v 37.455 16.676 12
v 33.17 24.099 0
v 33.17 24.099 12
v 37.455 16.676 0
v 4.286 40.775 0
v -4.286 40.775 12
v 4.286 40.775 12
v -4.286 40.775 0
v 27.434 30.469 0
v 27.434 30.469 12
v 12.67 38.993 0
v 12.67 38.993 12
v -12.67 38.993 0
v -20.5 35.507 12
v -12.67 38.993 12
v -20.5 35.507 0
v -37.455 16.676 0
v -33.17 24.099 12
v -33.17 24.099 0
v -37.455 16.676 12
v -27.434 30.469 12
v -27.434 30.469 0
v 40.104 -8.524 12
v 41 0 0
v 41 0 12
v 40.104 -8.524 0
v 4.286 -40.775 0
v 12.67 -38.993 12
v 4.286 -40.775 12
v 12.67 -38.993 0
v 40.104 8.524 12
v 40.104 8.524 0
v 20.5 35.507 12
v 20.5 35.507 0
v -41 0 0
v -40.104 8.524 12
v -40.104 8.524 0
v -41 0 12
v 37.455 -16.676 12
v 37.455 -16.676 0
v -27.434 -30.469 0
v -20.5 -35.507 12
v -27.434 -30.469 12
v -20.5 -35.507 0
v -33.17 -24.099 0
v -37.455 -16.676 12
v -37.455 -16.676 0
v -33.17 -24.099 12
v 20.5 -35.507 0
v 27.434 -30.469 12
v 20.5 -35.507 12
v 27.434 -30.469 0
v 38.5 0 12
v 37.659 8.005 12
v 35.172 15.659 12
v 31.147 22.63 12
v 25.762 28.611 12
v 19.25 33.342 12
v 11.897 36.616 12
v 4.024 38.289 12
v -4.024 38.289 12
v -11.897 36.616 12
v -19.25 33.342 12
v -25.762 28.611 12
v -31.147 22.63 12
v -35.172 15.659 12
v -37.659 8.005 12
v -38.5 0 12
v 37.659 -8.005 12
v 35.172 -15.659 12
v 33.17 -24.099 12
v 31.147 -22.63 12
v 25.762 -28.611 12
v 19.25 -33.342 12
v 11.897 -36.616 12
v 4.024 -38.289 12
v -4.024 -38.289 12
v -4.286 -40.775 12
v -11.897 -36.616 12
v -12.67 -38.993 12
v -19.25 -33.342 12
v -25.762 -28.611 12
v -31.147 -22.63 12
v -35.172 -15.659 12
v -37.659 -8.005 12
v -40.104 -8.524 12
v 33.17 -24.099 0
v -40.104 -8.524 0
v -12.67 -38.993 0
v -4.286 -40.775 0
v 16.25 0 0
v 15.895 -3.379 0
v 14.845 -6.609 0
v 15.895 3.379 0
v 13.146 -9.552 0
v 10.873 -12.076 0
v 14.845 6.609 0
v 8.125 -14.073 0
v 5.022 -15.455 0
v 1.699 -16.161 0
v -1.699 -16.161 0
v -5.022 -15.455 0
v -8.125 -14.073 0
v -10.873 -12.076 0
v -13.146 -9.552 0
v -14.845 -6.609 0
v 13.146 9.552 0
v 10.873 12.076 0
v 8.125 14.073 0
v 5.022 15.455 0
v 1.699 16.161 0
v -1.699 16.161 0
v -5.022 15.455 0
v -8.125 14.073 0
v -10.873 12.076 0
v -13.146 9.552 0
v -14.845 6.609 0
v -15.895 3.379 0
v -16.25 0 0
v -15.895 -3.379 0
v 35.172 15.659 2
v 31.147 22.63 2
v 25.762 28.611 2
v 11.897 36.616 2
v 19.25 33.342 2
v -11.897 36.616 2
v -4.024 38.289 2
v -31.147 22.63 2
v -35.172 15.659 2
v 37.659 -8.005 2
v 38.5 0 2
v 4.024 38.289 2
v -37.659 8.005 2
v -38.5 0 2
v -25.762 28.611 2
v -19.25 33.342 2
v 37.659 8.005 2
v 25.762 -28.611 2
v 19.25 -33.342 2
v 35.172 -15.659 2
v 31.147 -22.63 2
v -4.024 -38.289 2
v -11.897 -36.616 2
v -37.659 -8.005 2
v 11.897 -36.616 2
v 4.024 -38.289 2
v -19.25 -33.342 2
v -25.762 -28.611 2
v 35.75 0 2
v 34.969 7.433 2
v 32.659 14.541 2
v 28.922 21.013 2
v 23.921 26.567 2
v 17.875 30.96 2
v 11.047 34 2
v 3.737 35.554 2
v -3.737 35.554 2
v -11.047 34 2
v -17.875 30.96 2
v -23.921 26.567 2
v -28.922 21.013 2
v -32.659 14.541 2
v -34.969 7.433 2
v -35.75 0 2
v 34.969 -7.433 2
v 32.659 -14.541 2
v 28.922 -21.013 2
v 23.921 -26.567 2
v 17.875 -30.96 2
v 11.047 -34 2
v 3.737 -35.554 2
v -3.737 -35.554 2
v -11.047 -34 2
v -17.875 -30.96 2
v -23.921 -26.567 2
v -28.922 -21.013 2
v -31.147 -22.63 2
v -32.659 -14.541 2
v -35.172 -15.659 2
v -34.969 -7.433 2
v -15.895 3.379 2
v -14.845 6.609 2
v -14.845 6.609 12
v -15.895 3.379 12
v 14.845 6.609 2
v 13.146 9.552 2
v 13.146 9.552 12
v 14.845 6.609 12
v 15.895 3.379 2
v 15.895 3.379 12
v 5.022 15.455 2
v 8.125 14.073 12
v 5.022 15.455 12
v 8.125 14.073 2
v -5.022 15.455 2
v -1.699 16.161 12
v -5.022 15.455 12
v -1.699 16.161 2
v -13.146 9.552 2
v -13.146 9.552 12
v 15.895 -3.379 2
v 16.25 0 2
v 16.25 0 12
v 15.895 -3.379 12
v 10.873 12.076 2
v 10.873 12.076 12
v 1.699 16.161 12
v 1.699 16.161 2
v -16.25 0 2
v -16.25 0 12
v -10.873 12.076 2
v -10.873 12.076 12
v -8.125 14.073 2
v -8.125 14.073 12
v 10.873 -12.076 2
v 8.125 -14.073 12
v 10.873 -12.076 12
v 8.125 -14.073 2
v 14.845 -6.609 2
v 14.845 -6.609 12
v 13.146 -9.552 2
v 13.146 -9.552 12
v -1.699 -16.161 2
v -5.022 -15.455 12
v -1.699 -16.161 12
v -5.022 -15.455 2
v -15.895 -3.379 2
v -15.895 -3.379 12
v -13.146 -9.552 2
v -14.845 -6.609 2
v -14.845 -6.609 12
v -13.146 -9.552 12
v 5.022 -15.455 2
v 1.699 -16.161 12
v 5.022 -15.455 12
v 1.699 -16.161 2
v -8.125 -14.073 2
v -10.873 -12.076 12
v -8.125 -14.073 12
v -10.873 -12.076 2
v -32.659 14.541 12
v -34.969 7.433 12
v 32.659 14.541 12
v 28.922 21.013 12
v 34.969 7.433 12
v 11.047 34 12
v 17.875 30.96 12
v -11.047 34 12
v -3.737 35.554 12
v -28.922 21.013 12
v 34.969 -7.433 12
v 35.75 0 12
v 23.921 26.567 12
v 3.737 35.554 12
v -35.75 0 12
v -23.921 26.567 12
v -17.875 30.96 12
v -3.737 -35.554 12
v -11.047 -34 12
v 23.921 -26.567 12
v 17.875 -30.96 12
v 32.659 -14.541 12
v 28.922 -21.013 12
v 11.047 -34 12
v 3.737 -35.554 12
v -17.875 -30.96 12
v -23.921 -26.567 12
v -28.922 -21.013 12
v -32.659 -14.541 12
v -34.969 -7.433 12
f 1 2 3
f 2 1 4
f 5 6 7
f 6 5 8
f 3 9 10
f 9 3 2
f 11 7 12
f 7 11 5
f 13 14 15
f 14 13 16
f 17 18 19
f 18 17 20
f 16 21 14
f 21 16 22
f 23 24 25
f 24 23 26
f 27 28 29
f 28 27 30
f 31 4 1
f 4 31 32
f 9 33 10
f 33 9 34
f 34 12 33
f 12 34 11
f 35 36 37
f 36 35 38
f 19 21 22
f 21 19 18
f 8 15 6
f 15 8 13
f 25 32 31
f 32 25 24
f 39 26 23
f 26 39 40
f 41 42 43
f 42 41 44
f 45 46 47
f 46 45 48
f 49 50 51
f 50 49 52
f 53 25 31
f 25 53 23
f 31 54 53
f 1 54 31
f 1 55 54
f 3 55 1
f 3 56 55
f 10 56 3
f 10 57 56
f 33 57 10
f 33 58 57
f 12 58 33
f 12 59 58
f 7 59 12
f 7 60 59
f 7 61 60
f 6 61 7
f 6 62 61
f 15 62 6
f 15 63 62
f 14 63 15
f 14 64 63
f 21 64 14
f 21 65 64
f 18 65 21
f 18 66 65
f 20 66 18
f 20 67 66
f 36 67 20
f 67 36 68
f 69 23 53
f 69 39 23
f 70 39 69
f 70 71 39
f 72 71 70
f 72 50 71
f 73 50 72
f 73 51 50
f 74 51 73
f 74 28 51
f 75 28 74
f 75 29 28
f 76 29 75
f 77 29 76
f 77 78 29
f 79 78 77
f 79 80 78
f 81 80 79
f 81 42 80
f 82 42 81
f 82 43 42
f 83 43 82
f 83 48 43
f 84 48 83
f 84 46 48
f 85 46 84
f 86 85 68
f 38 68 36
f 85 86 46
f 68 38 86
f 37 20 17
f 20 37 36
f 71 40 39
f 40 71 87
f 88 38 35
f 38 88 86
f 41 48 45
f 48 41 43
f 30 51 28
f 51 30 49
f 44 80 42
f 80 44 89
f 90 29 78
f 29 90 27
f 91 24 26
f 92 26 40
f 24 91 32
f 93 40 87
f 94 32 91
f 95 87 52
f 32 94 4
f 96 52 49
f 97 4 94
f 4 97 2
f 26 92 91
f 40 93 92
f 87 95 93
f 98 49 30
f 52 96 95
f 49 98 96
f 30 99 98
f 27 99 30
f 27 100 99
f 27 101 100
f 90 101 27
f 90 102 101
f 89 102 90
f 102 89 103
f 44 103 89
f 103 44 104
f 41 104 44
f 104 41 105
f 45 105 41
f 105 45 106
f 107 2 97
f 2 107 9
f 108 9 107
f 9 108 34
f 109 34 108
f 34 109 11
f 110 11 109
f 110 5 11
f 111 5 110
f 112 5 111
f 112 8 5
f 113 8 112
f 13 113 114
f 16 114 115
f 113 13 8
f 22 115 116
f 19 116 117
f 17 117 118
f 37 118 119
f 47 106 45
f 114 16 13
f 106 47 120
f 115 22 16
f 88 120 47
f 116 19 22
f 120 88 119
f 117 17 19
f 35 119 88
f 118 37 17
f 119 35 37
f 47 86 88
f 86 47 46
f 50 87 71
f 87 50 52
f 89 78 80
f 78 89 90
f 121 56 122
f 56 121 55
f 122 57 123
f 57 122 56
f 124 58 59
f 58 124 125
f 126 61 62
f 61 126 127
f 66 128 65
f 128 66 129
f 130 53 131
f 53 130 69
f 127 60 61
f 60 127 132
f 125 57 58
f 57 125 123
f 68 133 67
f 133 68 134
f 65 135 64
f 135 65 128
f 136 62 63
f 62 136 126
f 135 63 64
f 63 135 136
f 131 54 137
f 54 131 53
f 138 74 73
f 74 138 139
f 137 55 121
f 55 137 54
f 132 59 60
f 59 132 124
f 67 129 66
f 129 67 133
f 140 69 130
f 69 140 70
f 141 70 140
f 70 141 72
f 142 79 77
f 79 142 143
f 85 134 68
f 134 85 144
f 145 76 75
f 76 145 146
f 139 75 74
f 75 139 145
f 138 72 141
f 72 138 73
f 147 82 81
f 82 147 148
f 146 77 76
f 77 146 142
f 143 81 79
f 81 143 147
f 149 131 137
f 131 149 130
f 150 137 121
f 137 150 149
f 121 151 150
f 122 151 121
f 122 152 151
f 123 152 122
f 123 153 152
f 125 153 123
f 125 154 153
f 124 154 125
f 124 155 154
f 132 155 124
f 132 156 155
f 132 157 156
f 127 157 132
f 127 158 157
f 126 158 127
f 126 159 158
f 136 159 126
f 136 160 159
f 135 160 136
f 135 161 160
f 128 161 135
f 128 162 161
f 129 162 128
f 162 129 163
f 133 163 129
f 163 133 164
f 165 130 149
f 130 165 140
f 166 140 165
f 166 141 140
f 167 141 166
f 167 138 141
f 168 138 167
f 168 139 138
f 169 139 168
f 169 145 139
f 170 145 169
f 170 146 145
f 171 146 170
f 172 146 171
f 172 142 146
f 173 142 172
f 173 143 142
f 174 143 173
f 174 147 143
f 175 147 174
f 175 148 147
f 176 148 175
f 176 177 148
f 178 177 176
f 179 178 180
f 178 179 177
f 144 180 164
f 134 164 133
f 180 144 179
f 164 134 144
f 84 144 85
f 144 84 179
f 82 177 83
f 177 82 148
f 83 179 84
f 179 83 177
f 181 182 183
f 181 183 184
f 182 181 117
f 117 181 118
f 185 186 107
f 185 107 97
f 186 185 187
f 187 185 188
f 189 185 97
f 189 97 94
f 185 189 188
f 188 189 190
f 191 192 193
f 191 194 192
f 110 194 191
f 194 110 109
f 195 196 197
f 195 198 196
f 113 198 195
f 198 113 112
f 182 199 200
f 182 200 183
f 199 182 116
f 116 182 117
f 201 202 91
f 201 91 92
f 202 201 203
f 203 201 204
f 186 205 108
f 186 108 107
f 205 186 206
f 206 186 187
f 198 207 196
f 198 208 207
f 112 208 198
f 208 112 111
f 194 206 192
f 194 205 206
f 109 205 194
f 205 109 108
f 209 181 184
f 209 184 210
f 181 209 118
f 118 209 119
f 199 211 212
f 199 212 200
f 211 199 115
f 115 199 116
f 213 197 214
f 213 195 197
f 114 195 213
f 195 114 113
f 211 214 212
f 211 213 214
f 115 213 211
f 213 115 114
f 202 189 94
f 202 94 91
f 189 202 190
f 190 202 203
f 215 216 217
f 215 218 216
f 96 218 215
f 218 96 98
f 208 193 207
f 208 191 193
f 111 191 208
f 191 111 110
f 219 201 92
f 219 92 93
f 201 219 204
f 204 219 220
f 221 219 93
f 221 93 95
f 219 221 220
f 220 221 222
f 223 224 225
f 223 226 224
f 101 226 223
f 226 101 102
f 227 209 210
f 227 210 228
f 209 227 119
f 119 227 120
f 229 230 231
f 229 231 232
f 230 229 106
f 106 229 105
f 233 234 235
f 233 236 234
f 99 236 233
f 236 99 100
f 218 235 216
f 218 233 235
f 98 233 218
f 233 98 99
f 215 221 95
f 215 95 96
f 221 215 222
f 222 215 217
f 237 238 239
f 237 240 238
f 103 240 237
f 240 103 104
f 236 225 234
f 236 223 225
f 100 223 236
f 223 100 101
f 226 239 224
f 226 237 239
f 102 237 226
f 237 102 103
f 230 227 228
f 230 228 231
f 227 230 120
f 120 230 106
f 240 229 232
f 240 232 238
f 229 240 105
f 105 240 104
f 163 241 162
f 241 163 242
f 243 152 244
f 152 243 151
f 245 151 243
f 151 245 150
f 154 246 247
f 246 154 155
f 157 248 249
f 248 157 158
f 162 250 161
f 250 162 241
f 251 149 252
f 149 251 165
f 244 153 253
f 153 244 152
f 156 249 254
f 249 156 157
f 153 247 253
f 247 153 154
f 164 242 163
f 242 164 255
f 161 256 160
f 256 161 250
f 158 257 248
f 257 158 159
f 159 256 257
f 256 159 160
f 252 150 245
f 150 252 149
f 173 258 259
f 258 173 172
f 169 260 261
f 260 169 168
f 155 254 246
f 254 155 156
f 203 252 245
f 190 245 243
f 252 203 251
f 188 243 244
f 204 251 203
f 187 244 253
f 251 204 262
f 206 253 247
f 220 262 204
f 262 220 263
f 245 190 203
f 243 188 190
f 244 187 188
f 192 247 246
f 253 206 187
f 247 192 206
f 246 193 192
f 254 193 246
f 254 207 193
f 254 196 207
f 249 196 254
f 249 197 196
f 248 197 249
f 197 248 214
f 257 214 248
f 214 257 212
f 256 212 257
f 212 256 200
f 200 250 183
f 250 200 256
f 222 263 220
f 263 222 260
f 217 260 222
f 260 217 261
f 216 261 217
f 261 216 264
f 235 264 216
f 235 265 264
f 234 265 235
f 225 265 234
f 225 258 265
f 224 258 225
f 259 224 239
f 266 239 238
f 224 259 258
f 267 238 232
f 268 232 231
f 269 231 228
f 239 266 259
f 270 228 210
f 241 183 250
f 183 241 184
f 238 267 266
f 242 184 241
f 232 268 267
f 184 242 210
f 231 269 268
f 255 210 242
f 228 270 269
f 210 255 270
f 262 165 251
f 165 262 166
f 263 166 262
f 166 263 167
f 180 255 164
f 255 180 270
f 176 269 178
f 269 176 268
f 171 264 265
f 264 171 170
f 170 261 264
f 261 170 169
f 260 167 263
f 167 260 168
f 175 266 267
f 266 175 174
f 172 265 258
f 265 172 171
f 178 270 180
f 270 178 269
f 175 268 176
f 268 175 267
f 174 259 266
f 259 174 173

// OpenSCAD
tubed = 32.5;
stepperi = 71.5;
steppero = 77;
wallthickness = 5;
depthi = 10;
deptho = 10;
extraheight = 2;
bignum = 999;
smallnum = 0.01;

difference(){
    cylinder(d=steppero+wallthickness,h=depthi+extraheight);
    translate([0,0, extraheight]) cylinder(d=steppero,h=bignum);
    cylinder(d=tubed, h = bignum, center = true);
}
difference(){
    cylinder(d=stepperi, h = depthi+extraheight);
    cylinder(d=tubed, h = bignum, center = true);
}
